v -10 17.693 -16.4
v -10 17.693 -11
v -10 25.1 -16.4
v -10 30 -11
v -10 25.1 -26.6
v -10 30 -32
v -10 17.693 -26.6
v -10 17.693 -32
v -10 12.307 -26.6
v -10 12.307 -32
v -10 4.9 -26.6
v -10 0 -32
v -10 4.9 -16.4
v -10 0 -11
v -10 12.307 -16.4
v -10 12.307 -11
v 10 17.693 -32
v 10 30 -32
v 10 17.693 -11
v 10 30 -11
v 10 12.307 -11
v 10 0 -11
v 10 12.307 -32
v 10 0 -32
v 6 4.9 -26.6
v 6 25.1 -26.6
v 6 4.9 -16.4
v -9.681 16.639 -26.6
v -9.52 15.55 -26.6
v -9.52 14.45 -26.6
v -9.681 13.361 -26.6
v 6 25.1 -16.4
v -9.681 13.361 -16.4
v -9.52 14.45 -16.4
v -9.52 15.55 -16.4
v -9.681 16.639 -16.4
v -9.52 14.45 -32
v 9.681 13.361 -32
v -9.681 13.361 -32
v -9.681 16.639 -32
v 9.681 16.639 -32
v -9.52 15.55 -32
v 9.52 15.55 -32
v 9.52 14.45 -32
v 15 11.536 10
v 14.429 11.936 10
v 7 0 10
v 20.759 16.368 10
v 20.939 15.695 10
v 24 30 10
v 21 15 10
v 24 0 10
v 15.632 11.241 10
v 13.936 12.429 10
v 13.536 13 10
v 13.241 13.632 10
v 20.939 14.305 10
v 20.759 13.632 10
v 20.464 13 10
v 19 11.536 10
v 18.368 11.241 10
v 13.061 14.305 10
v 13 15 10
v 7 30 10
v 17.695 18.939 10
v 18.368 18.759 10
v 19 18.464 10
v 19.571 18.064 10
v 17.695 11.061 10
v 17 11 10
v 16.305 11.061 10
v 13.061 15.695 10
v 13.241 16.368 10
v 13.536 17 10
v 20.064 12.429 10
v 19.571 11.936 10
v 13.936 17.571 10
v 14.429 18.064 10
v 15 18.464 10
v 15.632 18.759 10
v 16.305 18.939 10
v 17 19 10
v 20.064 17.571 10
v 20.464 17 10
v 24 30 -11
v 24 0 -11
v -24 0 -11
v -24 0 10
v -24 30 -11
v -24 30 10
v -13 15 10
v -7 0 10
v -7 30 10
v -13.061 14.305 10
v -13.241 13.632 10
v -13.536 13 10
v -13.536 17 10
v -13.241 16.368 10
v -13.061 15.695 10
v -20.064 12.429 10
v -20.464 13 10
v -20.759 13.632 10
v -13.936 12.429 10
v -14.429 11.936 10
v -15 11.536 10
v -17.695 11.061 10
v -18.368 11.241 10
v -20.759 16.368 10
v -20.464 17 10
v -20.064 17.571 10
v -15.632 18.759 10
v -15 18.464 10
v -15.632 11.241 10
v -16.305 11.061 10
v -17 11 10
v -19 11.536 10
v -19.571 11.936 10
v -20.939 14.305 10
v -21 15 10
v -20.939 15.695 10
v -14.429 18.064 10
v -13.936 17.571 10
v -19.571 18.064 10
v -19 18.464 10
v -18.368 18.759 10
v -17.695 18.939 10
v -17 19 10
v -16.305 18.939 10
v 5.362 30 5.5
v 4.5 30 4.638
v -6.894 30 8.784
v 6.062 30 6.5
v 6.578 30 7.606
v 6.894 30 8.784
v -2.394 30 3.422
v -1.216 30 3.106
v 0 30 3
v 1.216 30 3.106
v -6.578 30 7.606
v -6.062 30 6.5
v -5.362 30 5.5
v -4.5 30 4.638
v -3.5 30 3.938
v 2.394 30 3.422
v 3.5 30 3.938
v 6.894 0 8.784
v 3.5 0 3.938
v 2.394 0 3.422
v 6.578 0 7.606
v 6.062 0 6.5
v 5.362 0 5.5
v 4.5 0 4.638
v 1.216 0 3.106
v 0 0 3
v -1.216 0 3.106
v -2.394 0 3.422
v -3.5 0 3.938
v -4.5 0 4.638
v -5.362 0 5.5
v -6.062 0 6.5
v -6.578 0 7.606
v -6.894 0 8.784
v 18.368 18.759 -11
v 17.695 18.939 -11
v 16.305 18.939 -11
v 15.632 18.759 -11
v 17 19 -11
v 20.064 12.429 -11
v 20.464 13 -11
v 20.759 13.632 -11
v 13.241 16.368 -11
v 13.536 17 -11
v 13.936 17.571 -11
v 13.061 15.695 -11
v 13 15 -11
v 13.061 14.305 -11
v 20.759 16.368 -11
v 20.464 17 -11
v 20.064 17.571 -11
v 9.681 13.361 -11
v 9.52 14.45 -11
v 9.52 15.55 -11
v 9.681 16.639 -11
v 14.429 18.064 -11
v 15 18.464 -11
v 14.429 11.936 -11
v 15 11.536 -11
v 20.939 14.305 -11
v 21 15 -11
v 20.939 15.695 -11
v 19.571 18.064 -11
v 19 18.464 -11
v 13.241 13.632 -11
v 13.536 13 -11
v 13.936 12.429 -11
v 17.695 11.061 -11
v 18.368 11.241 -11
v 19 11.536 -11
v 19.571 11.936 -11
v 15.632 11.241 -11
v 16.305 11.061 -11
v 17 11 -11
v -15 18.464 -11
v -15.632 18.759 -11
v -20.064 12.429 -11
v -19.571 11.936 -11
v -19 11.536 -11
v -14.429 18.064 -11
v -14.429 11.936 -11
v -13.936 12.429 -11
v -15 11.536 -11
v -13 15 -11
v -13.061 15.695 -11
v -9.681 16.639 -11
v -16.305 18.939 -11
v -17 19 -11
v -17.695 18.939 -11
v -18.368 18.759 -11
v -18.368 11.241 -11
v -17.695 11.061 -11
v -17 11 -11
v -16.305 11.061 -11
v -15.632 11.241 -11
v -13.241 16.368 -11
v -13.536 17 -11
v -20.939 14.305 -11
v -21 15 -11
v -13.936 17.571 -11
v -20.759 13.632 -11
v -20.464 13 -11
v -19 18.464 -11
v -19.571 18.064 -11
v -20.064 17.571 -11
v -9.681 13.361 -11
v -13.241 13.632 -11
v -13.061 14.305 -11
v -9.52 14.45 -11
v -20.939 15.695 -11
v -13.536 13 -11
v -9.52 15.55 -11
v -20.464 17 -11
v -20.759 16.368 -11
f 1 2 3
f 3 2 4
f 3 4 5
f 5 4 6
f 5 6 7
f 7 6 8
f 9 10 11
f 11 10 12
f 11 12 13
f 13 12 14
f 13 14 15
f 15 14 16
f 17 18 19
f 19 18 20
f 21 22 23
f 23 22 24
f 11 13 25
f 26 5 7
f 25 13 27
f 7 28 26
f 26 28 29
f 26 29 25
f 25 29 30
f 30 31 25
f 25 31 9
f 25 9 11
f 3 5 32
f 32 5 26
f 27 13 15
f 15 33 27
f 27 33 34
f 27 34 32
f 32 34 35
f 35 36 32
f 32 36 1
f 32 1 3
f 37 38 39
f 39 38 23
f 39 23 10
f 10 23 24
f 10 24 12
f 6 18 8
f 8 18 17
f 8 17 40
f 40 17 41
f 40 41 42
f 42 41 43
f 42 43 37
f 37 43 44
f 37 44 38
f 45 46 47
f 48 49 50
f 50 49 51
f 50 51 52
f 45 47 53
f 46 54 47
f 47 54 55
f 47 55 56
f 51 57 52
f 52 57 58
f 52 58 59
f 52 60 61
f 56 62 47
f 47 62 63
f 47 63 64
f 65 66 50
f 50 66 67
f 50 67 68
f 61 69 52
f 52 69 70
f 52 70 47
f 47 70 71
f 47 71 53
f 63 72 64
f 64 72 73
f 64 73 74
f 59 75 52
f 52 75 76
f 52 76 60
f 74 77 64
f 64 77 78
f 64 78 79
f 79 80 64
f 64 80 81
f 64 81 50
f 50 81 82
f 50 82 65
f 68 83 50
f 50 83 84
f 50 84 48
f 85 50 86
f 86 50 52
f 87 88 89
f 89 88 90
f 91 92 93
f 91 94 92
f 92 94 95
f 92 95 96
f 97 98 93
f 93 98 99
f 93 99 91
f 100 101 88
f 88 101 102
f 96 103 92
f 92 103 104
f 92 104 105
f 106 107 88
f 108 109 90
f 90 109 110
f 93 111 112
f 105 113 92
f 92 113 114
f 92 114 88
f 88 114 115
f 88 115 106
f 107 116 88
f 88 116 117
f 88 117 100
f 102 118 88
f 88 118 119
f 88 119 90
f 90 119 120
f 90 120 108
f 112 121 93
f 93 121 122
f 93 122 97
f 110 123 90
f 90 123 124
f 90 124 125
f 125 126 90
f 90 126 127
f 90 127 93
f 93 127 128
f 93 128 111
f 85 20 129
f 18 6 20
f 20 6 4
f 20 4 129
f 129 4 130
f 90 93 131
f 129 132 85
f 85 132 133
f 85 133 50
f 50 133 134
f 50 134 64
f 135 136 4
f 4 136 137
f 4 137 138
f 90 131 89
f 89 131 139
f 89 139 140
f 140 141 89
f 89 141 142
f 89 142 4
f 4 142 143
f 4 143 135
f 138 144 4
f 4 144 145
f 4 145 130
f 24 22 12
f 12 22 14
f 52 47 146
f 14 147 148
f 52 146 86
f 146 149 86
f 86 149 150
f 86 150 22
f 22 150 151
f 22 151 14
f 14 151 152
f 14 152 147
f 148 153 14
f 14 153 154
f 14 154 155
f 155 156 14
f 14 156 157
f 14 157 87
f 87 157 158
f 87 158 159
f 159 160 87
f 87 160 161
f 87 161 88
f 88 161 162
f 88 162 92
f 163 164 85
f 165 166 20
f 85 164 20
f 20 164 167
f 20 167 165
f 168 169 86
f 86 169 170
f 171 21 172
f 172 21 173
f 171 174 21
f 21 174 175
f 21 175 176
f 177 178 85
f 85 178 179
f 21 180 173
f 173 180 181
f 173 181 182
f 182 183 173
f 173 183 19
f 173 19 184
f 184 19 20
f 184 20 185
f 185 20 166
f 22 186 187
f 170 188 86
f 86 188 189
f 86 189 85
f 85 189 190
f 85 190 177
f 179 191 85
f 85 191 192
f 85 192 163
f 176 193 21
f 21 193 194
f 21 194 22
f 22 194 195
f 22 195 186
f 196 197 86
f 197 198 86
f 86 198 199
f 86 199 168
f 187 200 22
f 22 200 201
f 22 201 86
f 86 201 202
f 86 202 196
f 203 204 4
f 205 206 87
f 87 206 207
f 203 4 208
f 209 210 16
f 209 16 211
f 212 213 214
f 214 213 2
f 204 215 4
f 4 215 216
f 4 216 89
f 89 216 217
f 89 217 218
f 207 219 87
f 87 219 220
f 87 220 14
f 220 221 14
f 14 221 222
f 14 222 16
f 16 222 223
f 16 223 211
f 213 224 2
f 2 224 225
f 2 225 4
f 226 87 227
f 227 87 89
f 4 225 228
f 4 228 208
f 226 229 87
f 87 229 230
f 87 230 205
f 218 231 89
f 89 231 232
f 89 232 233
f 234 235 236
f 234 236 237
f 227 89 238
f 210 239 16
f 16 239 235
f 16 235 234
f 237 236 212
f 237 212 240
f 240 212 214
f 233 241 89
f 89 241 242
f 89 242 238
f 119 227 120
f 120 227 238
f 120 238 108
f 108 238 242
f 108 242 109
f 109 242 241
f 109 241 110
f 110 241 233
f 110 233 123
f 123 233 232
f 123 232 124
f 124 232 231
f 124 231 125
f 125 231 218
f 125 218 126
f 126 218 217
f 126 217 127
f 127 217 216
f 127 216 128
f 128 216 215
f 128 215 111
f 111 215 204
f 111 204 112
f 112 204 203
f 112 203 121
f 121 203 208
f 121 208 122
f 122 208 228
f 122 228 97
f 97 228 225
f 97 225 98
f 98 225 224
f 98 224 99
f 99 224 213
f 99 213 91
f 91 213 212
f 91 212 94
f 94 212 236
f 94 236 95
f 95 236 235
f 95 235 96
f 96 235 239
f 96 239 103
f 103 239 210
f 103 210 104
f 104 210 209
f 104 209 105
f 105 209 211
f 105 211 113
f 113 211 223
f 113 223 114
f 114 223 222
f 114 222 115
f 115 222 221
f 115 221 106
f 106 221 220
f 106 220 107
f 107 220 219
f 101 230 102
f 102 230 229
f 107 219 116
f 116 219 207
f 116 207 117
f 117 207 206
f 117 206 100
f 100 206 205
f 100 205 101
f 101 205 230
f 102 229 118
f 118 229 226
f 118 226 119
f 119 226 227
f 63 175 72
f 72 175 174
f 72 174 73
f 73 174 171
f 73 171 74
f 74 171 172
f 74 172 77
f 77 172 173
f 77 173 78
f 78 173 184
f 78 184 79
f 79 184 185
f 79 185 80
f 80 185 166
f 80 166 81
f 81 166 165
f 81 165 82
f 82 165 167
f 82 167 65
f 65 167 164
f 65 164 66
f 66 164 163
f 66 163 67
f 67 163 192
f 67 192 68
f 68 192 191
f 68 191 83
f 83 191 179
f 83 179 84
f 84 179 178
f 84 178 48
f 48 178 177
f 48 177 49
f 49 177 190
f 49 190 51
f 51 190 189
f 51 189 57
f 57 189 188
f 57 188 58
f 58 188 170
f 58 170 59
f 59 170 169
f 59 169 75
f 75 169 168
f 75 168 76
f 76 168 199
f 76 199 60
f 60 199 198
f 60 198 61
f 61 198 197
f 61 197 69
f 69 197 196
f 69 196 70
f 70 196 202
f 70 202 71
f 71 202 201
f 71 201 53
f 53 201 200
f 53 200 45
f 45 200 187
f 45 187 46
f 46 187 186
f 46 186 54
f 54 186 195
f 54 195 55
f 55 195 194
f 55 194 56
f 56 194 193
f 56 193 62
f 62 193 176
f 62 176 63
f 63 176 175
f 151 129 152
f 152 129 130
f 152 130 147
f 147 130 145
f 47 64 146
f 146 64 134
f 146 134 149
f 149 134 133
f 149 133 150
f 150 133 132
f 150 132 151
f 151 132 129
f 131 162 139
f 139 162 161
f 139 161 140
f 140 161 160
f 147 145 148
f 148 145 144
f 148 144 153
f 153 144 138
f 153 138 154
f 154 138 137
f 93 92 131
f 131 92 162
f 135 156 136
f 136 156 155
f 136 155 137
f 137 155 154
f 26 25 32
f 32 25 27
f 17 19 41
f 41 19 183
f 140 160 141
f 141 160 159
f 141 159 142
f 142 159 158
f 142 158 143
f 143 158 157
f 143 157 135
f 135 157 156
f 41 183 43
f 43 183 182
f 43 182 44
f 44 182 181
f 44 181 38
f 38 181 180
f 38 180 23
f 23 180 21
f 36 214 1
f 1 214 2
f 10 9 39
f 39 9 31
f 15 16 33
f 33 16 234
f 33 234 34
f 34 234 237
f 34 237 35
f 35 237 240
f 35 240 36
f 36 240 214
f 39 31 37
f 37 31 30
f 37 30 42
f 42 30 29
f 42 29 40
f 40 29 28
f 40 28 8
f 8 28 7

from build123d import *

# Parameters (mm, degrees)
SKETCH_1_W          = 48
SKETCH_1_H          = 20
EXTRUDE_1_DEPTH     = 30
SKETCH_2_W          = 14
SKETCH_2_H          = 30
CUT_EXTRUDE_1_DEPTH = 7
SKETCH_7_W          = 22
SKETCH_7_H          = 30
EXTRUDE_2_DEPTH     = 48
SKETCH_8_W          = 21
SKETCH_8_H          = 30
CUT_EXTRUDE_2_DEPTH = 14
SKETCH_9_W          = 21
SKETCH_9_H          = 30
CUT_EXTRUDE_3_DEPTH = 14
SKETCH_11_W         = 10.2
SKETCH_11_H         = 20.2
CUT_EXTRUDE_4_DEPTH = 56.497747702
SKETCH_13_R         = 4
CUT_EXTRUDE_5_DEPTH = 44.783558558
SKETCH_14_R         = 4
CUT_EXTRUDE_6_DEPTH = 44.783558558
FILLET_1_R          = 7
SKETCH1_W           = 10.2
SKETCH1_H           = 20.2
BOSS_EXTRUDE1_DEPTH = 4
SKETCH_20_R         = 7.5
CUT_EXTRUDE_8_DEPTH = 44.783558558


with BuildPart() as part:
    # Эскиз1 → Бобышка-Вытянуть1 (new body)
    with BuildSketch(Plane(origin=(0, 0, 0), x_dir=(1, 0, 0), z_dir=(0, 1, 0))):
        Rectangle(SKETCH_1_W, SKETCH_1_H)
    extrude(amount=EXTRUDE_1_DEPTH)

    # Эскиз2 → Вырез-Вытянуть1 (cut)
    with BuildSketch(Plane.XY.offset(10)):
        with Locations((0, 15)):
            Rectangle(SKETCH_2_W, SKETCH_2_H)
    extrude(amount=-CUT_EXTRUDE_1_DEPTH, mode=Mode.SUBTRACT)

    # Эскиз7 → Бобышка-Вытянуть2 (add)
    with BuildSketch(Plane(origin=(24, 0, 0), x_dir=(0, 0, -1), z_dir=(1, 0, 0))):
        with Locations((21, 15)):
            Rectangle(SKETCH_7_W, SKETCH_7_H)
    extrude(amount=-EXTRUDE_2_DEPTH)

    # Эскиз8 → Вырез-Вытянуть2 (cut)
    with BuildSketch(Plane(origin=(24, 0, 0), x_dir=(0, 0, -1), z_dir=(1, 0, 0))):
        with Locations((21.5, 15)):
            Rectangle(SKETCH_8_W, SKETCH_8_H)
    extrude(amount=-CUT_EXTRUDE_2_DEPTH, mode=Mode.SUBTRACT)

    # Эскиз9 → Вырез-Вытянуть3 (cut)
    with BuildSketch(Plane.ZY.offset(24)):
        with Locations((-21.5, 15)):
            Rectangle(SKETCH_9_W, SKETCH_9_H)
    extrude(amount=-CUT_EXTRUDE_3_DEPTH, mode=Mode.SUBTRACT)

    # Эскиз11 → Вырез-Вытянуть4 (cut, through all)
    with BuildSketch(Plane.ZY.offset(10)):
        with Locations((-21.5, 15)):
            Rectangle(SKETCH_11_W, SKETCH_11_H)
    extrude(amount=-CUT_EXTRUDE_4_DEPTH, mode=Mode.SUBTRACT)

    # Эскиз13 → Вырез-Вытянуть5 (cut, through all)
    with BuildSketch(Plane(origin=(0, 0, -11), x_dir=(-1, 0, 0), z_dir=(0, 0, -1))):
        with Locations((17, 15)):
            Circle(SKETCH_13_R)
    extrude(amount=-CUT_EXTRUDE_5_DEPTH, mode=Mode.SUBTRACT)

    # Эскиз14 → Вырез-Вытянуть6 (cut, through all)
    with BuildSketch(Plane(origin=(0, 0, -11), x_dir=(-1, 0, 0), z_dir=(0, 0, -1))):
        with Locations((-17, 15)):
            Circle(SKETCH_14_R)
    extrude(amount=-CUT_EXTRUDE_6_DEPTH, mode=Mode.SUBTRACT)

    # Скругление1
    fillet_1_edges = [part.edges().sort_by_distance(p)[0] for p in [
        (-7, 15, 3),
        (7, 15, 3),
    ]]
    fillet(fillet_1_edges, radius=FILLET_1_R - 0.0001)  # a hair under: the kernel refuses the full size

    # Sketch1 → Boss-Extrude1 (add)
    with BuildSketch(Plane(origin=(10, 0, 0), x_dir=(0, 0, -1), z_dir=(1, 0, 0))):
        with Locations((21.5, 15)):
            Rectangle(SKETCH1_W, SKETCH1_H)
    extrude(amount=-BOSS_EXTRUDE1_DEPTH)

    # Эскиз20 → Вырез-Вытянуть8 (cut, through all)
    with BuildSketch(Plane(origin=(0, 0, -11), x_dir=(-1, 0, 0), z_dir=(0, 0, -1))):
        with Locations((-17, 15)):
            Circle(SKETCH_20_R)
        with Locations((17, 15)):
            Circle(SKETCH_20_R)
    extrude(amount=CUT_EXTRUDE_8_DEPTH, mode=Mode.SUBTRACT)


solid = part.part
